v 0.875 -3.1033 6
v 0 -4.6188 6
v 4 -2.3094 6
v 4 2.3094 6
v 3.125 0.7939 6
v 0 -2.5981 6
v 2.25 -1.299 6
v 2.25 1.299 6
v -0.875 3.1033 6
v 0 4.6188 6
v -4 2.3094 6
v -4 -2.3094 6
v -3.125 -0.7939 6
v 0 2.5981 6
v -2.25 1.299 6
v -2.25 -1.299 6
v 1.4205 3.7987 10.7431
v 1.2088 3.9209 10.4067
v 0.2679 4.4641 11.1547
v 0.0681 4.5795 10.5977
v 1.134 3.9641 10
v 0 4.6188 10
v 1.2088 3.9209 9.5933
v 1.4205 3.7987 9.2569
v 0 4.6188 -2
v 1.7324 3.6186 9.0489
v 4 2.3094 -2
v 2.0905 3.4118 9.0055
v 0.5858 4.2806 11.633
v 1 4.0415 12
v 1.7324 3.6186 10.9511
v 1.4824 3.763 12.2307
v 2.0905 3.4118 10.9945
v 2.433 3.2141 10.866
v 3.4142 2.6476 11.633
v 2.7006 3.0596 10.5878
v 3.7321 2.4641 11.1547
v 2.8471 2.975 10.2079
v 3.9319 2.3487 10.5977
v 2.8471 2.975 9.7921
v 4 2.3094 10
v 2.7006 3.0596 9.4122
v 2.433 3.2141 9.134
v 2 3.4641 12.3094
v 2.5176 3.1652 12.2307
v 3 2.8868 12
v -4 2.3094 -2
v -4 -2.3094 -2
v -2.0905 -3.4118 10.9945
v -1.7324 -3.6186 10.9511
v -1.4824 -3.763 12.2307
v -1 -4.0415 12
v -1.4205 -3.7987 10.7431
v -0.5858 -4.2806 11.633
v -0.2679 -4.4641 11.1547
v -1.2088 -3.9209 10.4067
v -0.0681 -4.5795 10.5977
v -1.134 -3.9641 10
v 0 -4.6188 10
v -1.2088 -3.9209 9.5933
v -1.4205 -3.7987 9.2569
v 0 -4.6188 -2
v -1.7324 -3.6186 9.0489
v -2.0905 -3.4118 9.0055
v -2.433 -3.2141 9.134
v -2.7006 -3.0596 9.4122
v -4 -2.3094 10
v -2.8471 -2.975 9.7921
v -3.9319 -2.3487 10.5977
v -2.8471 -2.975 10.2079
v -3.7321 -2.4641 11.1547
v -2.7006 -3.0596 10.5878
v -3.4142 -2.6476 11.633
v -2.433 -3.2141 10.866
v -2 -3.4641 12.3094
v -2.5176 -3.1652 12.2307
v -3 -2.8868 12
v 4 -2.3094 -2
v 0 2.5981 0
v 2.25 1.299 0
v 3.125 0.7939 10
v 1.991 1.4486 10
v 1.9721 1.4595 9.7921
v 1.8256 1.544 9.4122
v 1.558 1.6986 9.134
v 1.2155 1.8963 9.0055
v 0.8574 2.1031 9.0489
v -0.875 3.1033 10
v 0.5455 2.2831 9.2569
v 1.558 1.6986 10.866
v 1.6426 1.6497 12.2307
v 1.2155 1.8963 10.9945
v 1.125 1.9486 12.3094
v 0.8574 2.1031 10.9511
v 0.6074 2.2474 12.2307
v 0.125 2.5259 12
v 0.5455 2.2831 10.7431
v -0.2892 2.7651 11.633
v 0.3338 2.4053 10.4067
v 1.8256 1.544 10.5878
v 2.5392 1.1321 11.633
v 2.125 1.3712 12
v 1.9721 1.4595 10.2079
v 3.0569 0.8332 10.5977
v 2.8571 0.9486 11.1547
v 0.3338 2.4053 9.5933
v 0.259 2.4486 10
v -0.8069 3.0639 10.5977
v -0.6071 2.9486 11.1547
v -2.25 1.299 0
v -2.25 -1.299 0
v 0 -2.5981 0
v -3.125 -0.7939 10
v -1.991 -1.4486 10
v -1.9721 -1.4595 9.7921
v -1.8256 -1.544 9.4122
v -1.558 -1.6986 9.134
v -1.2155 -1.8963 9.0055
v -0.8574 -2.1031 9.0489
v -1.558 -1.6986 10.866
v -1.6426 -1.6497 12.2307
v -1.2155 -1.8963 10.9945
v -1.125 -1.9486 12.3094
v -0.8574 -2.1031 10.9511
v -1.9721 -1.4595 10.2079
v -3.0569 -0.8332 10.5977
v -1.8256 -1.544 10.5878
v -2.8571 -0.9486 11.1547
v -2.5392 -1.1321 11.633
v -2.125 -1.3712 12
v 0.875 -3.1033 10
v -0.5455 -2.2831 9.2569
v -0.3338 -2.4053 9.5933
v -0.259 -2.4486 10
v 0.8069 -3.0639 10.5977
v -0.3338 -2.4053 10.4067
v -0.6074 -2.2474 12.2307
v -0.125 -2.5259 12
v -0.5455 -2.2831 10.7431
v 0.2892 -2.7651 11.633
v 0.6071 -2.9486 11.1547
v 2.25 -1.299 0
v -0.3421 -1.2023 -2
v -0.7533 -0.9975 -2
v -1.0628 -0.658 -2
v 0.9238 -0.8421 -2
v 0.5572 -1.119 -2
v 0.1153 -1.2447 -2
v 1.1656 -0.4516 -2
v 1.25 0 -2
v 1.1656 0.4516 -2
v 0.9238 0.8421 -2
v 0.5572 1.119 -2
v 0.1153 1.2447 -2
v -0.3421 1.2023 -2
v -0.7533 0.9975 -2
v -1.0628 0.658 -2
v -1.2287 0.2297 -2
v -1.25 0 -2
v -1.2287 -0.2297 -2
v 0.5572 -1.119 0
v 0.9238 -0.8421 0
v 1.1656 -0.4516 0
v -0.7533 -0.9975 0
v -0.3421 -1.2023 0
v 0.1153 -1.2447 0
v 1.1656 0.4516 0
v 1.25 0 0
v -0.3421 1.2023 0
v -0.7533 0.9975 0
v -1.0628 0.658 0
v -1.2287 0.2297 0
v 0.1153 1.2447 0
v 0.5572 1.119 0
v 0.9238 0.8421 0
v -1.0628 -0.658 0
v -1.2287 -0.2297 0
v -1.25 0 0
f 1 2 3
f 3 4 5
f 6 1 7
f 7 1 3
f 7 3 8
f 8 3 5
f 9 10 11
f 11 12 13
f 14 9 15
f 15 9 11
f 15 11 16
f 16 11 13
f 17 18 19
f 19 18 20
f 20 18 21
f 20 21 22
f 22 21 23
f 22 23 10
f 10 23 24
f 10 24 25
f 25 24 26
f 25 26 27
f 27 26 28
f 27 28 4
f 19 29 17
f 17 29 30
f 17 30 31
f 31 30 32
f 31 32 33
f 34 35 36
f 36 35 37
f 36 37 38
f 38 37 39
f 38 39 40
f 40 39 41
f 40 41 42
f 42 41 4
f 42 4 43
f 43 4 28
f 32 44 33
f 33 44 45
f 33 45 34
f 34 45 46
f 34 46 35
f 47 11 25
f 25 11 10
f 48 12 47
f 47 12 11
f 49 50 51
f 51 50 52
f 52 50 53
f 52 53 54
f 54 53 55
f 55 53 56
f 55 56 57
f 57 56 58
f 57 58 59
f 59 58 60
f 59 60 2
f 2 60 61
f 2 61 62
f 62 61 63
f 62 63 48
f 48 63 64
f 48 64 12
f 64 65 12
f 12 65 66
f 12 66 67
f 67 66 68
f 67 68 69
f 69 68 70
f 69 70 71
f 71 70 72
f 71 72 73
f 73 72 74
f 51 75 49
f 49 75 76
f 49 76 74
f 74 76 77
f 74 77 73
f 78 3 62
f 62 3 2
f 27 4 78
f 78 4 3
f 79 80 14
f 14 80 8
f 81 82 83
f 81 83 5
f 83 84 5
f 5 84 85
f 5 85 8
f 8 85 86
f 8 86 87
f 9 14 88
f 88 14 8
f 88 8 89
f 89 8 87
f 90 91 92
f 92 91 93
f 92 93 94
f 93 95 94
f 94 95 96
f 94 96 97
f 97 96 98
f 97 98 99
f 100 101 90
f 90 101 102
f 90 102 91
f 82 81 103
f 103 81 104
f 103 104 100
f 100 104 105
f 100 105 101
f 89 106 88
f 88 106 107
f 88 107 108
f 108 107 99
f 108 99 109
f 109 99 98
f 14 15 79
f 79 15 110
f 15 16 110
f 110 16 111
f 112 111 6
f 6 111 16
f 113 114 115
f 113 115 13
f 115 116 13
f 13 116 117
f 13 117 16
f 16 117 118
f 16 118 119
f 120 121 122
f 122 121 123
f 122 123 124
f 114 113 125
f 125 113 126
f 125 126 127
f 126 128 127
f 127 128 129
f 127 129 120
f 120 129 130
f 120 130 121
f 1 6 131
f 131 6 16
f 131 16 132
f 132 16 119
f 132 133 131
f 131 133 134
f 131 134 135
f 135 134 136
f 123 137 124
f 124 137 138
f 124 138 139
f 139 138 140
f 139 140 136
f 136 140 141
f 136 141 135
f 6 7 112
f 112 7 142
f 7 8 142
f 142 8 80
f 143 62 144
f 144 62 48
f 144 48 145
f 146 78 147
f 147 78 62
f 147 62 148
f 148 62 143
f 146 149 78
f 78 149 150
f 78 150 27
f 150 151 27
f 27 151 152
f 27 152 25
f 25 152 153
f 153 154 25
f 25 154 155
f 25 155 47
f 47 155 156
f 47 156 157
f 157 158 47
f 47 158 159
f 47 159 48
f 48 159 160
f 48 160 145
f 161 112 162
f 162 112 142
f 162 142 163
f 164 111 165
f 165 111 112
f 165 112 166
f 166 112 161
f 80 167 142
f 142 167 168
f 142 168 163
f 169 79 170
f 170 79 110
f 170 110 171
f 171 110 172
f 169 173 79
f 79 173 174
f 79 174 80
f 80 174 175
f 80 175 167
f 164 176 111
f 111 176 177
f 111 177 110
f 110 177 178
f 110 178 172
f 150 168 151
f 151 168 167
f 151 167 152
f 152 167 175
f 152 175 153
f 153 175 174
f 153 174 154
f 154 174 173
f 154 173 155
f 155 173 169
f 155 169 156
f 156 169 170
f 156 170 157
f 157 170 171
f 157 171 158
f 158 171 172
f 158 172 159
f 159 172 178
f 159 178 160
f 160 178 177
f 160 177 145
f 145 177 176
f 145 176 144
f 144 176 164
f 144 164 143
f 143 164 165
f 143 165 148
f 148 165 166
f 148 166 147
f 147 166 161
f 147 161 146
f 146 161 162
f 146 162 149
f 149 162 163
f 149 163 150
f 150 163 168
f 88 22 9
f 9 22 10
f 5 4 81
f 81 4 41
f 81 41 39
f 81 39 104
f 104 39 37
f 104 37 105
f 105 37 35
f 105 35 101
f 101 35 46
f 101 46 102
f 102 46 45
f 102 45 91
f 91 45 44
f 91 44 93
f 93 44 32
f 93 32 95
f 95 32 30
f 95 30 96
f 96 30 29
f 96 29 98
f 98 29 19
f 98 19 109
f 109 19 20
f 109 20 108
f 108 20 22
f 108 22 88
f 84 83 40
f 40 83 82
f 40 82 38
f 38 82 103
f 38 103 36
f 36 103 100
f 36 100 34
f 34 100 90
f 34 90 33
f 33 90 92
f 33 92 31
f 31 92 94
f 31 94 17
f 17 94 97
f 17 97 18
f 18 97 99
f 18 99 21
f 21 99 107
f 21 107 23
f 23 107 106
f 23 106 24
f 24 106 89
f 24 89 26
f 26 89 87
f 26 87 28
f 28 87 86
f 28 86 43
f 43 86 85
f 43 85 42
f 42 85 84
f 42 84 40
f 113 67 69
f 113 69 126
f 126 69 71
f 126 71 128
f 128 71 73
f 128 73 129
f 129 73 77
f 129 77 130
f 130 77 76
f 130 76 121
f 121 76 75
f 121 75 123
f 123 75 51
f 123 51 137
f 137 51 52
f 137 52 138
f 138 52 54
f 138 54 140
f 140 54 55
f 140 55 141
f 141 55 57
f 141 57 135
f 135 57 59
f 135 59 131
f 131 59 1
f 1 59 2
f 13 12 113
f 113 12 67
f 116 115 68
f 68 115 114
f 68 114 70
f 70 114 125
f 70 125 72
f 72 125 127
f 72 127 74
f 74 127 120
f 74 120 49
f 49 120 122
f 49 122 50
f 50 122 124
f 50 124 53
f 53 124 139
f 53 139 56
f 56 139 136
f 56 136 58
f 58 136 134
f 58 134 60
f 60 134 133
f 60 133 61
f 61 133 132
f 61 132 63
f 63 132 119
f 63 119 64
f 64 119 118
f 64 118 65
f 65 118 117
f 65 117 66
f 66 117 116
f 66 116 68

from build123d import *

# Parameters (mm, degrees)
EXTRUDE_1_DEPTH = 6
SKETCH_2_R      = 1.25
EXTRUDE_2_DEPTH = 2
SKETCH_3_R      = 1
EXTRUDE_4_DEPTH = 1.75
SKETCH_4_R      = 1
EXTRUDE_7_DEPTH = 1.75


with BuildPart() as part:
    # 스케치1 → 보스-돌출1 (new body)
    with BuildSketch(Plane.XY):
        Polygon((0, 4.618802154), (-4, 2.309401077), (-4, -2.309401077), (0, -4.618802154), (4, -2.309401077), (4, 2.309401077), align=None)
        Polygon((0, 2.598076211), (-2.25, 1.299038106), (-2.25, -1.299038106), (0, -2.598076211), (2.25, -1.299038106), (2.25, 1.299038106), align=None, mode=Mode.SUBTRACT)
    extrude(amount=EXTRUDE_1_DEPTH)

    # 스케치2 → 보스-돌출2 (add)
    with BuildSketch(Plane(origin=(0, 0, 0), x_dir=(-1, 0, 0), z_dir=(0, 0, -1))):
        Polygon((0, 4.618802154), (-4, 2.309401077), (-4, -2.309401077), (0, -4.618802154), (4, -2.309401077), (4, 2.309401077), align=None)
        Circle(SKETCH_2_R, mode=Mode.SUBTRACT)
    extrude(amount=EXTRUDE_2_DEPTH)

    # 스케치3 → 보스-돌출4 (add)
    with BuildSketch(Plane(origin=(2, 3.464101615, 0), x_dir=(0.866025404, -0.5, 0), z_dir=(0.5, 0.866025404, 0))):
        with BuildLine():
            Line((-2.309401077, -6), (2.309401077, -6))
            Line((2.309401077, -6), (2.309401077, -10))
            ThreePointArc((2.309401077, -10), (0, -12.309401077), (-2.309401077, -10))
            Line((-2.309401077, -10), (-2.309401077, -6))
        make_face()
        with Locations((0, -10)):
            Circle(SKETCH_3_R, mode=Mode.SUBTRACT)
    extrude(amount=-EXTRUDE_4_DEPTH)

    # 스케치4 → 보스-돌출7 (add)
    with BuildSketch(Plane(origin=(-2, -3.464101615, 0), x_dir=(0.866025404, -0.5, 0), z_dir=(-0.5, -0.866025404, 0))):
        with BuildLine():
            Line((-2.309401077, 10), (-2.309401077, 6))
            Line((-2.309401077, 6), (2.309401077, 6))
            Line((2.309401077, 6), (2.309401077, 10))
            ThreePointArc((2.309401077, 10), (0, 12.309401077), (-2.309401077, 10))
        make_face()
        with Locations((0, 10)):
            Circle(SKETCH_4_R, mode=Mode.SUBTRACT)
    extrude(amount=-EXTRUDE_7_DEPTH)


solid = part.part
